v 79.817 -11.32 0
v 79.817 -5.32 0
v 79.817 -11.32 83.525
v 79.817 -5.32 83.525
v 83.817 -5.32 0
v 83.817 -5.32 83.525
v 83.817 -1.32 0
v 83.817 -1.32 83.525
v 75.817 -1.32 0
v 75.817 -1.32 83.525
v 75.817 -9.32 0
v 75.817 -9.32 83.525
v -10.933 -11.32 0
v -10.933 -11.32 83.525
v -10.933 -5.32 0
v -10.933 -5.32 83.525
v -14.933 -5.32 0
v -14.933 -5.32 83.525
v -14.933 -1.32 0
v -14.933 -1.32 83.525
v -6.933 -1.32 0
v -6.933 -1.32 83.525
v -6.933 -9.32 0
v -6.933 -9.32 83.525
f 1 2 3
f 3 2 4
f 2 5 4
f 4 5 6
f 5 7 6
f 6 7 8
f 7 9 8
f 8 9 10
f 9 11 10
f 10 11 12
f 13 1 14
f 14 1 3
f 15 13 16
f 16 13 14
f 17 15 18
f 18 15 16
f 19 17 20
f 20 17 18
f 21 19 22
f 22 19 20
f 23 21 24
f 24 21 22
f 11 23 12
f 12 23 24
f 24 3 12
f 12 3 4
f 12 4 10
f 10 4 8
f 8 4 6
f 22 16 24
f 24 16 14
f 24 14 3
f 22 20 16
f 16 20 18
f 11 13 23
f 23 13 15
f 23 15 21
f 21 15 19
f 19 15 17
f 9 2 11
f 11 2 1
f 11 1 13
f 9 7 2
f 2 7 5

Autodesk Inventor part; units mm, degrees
ref_plane "YZ Plane" through (0, 0, 0) normal (1, 0, 0) x (0, 1, 0)
ref_plane "XZ Plane" through (0, 0, 0) normal (0, 1, 0) x (-1, 0, 0)
ref_plane "XY Plane" through (0, 0, 0) normal (0, 0, 1) x (1, 0, 0)
sketch "Sketch2" plane through (0, 0, 0) normal (0, 0, 1) x (1, 0, 0)
  line L0 (-14.9328, -5.3201) -> (-10.9328, -5.3201)
  line L1 (-10.9328, -5.3201) -> (-10.9328, -11.3201)
  line L2 (20.0672, -9.3201) -> (20.0672, -9.3157)
  line L3 (-6.9328, -9.3201) -> (-6.9328, -1.3201)
  line L4 (-6.9328, -1.3201) -> (-14.9328, -1.3201)
  line L5 (-14.9328, -1.3201) -> (-14.9328, -5.3201)
  line L6 (-14.9328, -5.3201) -> (-10.9328, -5.3201)
  line L7 (-14.9328, -1.3201) -> (-6.9328, -1.3201)
  line L8 (-6.9328, -1.3201) -> (-6.9328, -9.3201)
  line L9 (16.0672, -9.3157) -> (16.0672, -9.3201)
  line L10 (-10.9328, -11.3201) -> (-10.9328, -5.3201)
  line L11 (-10.9328, -5.3201) -> (-14.9328, -5.3201)
  line L12 (-14.9328, -1.3201) -> (-14.9328, -5.3201)
  line L13 (-10.9328, -11.3201) -> (34.4422, -11.3201)
  line L14 (-10.9328, -11.3201) -> (34.4422, -11.3201) construction
  line L15 (34.4422, -11.3201) -> (34.4422, -9.3201)
  line L16 (-6.9328, -9.3201) -> (34.4422, -9.3201)
  point P0 (0, 0)
  point P1 (-14.9328, 16.2146)
  point P2 (20.0672, -10.3179)
  point P3 (-12.9328, -5.3201)
  point P4 (-14.9328, -5.3201)
  dimension "d2" = 8
  dimension "d3" = 90
  dimension "d4" = 4
  dimension "d5" = 90
  dimension "d6" = 4
  dimension "d7" = 90
  dimension "d23" = 45.375
  dimension "d24" = 0
  dimension "d25" = 2
extrude "Extrusion4" add sketch "Sketch2" along normal blind 83.525
mirror "Mirror4" about plane through (34.4422, -11.3201, 0) normal (1, 0, 0) of "Extrusion4"
properties part number "Avionics Cradle (12-13)"
